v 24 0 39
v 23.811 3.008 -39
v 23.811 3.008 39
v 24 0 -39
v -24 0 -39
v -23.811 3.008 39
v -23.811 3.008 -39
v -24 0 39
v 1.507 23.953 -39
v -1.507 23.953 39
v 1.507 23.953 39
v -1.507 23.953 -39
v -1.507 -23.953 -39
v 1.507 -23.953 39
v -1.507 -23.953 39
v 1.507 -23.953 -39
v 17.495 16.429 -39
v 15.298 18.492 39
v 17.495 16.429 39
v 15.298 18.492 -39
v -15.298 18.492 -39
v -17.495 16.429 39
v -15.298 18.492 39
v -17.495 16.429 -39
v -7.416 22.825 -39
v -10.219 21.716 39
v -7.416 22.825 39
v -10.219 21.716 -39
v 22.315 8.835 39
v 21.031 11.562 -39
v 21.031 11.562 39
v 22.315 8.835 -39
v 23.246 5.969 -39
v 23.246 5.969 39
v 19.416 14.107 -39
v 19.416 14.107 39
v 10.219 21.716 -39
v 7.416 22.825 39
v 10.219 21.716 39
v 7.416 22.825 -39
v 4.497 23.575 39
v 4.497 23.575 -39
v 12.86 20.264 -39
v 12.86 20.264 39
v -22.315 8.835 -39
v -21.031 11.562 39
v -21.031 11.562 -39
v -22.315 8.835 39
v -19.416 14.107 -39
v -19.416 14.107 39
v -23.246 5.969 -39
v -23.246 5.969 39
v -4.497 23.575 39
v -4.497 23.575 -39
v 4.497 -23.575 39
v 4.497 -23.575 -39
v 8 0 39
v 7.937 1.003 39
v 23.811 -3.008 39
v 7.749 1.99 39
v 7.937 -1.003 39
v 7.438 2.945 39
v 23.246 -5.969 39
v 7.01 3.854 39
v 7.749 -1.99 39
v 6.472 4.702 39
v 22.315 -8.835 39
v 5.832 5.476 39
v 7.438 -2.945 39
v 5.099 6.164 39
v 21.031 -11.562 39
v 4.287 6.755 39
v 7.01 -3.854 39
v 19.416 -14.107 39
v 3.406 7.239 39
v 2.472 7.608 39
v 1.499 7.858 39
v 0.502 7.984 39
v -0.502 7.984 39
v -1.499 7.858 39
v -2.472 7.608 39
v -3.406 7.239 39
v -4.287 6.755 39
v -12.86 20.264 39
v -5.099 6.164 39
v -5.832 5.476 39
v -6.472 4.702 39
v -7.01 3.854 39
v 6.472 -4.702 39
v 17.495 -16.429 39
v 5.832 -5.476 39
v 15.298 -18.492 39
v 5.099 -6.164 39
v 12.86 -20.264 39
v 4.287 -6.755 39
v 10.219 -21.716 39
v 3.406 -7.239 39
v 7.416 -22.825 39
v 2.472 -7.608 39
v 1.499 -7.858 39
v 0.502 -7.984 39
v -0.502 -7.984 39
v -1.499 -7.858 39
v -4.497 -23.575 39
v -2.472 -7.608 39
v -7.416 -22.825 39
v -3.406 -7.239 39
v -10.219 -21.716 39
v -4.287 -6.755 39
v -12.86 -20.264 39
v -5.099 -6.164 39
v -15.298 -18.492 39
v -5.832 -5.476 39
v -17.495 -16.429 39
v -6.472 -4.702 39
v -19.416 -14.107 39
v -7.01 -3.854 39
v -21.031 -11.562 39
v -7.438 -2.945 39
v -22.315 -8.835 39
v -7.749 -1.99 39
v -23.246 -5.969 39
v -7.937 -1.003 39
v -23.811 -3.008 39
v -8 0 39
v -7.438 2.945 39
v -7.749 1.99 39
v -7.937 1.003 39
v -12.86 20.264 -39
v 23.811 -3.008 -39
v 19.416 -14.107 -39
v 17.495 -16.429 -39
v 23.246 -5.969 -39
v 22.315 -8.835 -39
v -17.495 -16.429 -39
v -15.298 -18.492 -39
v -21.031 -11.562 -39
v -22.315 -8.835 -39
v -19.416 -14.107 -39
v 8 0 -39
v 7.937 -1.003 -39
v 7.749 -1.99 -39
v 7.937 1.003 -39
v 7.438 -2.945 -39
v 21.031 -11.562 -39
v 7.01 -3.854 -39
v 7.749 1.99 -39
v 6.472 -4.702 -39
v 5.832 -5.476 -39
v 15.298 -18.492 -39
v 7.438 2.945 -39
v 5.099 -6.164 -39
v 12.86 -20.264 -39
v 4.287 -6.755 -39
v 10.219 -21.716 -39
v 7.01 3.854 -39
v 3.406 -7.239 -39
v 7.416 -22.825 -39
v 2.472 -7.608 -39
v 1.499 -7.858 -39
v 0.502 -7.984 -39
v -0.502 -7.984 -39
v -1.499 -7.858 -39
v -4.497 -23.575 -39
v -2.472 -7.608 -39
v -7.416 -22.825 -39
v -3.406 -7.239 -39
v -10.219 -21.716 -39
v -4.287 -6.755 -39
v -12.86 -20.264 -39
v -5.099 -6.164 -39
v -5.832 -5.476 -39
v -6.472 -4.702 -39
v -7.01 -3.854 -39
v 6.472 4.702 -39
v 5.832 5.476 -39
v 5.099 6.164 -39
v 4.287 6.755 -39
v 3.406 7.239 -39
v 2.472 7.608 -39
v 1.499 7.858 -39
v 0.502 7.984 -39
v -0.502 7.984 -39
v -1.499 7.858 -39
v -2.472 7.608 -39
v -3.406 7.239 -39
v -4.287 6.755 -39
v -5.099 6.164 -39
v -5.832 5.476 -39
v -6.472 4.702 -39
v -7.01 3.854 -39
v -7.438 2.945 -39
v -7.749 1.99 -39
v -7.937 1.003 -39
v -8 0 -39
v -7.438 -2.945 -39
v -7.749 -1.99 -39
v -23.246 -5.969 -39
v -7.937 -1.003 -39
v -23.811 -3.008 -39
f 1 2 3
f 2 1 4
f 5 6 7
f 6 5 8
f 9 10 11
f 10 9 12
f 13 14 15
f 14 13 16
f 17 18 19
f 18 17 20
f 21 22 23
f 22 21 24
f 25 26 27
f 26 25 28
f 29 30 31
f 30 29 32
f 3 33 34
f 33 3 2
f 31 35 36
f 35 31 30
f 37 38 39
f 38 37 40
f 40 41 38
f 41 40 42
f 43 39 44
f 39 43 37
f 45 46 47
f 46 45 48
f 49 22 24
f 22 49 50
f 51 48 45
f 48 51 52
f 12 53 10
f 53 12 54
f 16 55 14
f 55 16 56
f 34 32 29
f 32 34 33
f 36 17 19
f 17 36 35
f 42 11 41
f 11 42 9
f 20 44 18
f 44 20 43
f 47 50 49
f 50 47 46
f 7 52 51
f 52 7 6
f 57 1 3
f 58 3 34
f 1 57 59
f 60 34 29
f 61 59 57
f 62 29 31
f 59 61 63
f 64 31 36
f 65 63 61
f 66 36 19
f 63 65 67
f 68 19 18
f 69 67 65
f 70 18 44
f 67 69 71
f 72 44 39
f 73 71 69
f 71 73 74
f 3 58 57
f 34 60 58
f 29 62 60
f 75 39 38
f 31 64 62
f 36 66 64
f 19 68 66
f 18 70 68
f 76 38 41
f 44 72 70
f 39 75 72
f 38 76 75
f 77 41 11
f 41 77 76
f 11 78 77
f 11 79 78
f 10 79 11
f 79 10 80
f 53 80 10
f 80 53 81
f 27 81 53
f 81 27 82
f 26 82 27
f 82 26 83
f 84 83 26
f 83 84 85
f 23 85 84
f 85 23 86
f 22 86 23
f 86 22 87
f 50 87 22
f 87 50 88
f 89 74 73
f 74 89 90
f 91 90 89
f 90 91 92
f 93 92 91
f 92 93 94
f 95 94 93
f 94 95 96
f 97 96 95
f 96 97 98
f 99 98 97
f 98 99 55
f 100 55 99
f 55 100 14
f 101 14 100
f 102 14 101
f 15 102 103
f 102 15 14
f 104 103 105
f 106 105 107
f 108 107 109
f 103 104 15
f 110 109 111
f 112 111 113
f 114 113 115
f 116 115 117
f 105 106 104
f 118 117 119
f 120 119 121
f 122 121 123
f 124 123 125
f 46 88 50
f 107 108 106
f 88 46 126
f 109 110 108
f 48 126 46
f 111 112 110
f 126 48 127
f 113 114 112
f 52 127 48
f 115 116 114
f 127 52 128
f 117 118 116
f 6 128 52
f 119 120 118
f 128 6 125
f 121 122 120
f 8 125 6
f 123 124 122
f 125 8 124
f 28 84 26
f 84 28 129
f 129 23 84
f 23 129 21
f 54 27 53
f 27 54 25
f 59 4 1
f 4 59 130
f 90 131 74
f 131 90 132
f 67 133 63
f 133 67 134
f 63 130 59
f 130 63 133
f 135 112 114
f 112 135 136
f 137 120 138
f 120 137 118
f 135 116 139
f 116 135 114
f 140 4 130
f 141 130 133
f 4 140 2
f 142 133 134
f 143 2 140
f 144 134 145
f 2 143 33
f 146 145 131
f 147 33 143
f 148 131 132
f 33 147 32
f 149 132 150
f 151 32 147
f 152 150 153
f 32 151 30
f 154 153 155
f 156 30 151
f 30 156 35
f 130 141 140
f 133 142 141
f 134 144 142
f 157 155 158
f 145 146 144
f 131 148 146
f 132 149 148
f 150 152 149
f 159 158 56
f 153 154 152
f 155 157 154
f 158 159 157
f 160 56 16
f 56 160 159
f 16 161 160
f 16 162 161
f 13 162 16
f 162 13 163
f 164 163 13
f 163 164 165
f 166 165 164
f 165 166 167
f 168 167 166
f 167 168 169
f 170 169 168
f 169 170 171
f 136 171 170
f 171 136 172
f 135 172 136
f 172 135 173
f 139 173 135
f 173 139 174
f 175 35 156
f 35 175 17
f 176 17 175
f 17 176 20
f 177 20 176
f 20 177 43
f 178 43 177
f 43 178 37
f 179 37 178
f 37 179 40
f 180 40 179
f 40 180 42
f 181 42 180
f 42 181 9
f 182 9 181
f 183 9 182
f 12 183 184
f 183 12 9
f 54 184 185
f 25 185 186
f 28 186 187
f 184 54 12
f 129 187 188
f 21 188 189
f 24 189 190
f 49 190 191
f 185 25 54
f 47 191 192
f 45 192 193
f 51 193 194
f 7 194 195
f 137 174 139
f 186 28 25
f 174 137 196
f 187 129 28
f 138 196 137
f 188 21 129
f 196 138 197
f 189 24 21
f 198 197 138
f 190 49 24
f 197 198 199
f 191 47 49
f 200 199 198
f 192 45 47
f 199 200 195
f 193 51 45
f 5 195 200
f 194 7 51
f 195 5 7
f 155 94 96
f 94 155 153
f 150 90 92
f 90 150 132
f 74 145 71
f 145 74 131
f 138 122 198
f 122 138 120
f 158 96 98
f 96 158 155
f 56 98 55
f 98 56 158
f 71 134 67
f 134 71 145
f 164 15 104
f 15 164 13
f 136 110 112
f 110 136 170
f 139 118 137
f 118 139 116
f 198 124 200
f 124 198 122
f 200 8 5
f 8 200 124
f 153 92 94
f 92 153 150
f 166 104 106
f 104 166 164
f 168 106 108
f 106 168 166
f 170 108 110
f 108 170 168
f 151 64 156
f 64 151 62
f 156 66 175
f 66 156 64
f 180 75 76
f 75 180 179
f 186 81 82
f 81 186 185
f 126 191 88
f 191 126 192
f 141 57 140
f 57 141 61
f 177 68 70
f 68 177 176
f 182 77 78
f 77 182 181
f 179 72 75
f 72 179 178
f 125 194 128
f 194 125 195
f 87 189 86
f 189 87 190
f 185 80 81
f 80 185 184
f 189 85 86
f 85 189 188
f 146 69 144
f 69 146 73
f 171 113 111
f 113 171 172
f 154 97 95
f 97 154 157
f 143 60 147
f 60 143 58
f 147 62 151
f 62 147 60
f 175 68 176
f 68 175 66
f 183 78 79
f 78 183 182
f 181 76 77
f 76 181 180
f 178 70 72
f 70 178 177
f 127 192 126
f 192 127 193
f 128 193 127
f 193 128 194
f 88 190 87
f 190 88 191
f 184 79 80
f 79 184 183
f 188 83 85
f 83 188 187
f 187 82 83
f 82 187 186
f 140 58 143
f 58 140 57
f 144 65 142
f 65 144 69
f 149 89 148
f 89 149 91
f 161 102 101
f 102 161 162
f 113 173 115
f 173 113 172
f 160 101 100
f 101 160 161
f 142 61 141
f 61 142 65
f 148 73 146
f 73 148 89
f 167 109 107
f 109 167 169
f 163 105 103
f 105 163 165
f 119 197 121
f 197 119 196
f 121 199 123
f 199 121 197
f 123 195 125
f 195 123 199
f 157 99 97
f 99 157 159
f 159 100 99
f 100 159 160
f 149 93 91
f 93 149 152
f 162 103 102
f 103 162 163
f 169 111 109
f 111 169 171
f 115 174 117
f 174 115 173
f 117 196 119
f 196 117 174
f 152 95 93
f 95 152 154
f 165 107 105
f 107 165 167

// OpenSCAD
$fn = 50;


difference() {
	union() {
		translate(v = [0, 0, -39.0000000000]) {
			cylinder(h = 78, r = 24.0000000000);
		}
	}
	union() {
		translate(v = [0, 0, -100.0000000000]) {
			cylinder(h = 200, r = 8);
		}
	}
}
